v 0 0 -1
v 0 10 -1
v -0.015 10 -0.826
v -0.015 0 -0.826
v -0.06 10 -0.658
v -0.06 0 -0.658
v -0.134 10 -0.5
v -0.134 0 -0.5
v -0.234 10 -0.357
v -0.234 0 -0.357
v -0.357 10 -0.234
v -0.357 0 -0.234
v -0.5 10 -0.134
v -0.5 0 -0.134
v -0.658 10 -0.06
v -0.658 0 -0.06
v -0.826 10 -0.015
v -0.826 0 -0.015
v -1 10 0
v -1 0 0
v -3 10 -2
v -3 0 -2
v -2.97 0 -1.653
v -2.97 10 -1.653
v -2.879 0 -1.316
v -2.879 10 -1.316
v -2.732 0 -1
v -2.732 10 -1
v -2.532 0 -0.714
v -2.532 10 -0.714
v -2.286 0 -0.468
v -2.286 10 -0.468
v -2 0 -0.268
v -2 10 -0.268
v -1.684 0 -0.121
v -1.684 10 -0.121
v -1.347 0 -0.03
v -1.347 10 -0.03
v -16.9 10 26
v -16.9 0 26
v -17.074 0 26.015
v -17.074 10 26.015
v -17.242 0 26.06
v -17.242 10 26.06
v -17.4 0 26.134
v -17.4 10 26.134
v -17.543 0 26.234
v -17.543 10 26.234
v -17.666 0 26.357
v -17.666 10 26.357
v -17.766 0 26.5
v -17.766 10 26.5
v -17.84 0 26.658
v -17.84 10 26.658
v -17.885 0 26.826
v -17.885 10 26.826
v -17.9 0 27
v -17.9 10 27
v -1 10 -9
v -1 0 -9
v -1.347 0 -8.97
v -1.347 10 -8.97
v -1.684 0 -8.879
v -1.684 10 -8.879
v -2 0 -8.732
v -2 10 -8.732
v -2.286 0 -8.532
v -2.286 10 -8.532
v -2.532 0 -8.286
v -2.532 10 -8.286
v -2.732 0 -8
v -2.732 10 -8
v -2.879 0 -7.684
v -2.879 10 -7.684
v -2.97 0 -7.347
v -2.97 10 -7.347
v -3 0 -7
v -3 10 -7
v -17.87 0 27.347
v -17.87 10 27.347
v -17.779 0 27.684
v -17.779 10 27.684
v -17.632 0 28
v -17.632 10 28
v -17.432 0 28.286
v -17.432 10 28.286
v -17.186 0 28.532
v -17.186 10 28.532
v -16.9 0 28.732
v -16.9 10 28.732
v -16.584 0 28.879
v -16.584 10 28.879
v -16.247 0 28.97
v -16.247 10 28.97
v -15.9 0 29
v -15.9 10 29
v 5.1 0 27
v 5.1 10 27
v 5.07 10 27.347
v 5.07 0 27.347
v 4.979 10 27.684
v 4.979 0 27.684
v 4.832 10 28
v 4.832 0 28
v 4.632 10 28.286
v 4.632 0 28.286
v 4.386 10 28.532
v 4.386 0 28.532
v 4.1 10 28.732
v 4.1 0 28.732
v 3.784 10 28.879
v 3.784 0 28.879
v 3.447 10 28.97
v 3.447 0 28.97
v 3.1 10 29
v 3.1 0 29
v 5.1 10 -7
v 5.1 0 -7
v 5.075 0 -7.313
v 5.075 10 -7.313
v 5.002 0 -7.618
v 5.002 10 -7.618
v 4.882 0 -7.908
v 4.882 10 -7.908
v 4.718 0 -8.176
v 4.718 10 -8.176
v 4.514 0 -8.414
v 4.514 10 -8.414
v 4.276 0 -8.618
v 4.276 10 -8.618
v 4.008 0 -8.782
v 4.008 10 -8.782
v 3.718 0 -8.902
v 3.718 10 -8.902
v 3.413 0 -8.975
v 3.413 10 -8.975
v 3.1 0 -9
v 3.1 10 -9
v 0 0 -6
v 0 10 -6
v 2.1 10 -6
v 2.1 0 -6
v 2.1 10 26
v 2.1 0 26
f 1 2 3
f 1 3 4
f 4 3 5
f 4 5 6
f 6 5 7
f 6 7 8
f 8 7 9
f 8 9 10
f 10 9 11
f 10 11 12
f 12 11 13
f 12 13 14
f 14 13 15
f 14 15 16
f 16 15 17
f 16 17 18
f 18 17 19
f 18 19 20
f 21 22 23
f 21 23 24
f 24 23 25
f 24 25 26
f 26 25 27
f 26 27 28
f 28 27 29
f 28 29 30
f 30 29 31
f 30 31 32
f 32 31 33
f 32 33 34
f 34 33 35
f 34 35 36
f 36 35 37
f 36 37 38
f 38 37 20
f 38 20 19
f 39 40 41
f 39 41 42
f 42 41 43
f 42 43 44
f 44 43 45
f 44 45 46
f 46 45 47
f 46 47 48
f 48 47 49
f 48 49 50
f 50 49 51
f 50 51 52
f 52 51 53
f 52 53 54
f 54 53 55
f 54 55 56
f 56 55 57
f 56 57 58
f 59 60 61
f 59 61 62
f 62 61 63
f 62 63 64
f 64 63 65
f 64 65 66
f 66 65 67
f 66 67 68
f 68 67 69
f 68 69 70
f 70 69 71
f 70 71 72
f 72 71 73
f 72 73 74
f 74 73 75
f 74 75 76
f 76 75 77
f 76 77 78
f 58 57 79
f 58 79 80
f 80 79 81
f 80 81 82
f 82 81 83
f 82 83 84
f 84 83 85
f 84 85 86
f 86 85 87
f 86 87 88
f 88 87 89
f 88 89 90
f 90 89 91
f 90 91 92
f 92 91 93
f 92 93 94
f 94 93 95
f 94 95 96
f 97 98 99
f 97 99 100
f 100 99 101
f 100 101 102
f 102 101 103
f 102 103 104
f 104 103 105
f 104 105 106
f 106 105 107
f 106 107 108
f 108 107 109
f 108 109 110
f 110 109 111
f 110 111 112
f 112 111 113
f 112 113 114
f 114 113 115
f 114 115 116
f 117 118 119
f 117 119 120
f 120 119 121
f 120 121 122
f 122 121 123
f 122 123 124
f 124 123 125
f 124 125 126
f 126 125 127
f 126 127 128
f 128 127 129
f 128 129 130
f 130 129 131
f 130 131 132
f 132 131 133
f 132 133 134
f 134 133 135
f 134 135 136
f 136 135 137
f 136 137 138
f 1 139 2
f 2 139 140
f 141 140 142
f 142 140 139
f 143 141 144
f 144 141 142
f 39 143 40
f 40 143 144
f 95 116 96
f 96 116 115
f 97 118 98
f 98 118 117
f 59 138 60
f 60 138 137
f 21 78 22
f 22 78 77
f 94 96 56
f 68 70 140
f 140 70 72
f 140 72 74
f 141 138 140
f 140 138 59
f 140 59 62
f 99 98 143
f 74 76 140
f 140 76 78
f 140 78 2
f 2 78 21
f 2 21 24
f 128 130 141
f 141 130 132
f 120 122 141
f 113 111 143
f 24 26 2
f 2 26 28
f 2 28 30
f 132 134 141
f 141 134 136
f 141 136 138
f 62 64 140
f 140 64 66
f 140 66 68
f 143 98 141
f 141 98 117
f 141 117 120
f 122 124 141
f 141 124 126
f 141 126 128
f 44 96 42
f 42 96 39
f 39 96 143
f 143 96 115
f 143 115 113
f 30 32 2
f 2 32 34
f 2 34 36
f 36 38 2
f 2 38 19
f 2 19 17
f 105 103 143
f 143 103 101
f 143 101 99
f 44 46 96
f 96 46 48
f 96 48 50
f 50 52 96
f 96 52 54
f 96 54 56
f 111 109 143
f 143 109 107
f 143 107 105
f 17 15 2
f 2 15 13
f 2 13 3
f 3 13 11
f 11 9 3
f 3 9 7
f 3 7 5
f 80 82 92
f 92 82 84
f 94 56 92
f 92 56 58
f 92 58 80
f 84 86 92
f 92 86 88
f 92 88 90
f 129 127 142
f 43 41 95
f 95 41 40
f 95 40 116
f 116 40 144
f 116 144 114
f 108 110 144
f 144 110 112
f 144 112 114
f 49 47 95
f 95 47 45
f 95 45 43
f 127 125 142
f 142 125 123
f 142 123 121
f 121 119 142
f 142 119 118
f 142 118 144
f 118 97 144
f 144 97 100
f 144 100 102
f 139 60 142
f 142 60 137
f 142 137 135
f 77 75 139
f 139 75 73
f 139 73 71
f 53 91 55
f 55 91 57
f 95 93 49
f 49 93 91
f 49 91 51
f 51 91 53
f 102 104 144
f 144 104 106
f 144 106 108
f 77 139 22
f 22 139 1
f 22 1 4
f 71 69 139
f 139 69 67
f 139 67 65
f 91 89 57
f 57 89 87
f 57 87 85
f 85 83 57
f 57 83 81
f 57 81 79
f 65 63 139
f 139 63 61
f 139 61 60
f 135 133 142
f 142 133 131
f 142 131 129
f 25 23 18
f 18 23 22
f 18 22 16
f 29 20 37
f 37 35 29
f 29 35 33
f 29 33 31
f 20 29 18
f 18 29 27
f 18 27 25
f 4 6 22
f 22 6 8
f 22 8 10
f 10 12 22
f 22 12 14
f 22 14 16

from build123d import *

# Parameters (mm, degrees)
BOSS_EXTRUDE1_DEPTH = 10
FILLET1_R           = 2
FILLET2_R           = 2
FILLET3_R           = 2
FILLET4_R           = 2
FILLET5_R           = 1
FILLET6_R           = 2
FILLET7_R           = 1


with BuildPart() as part:
    # Sketch1 → Boss-Extrude1 (new body)
    with BuildSketch(Plane(origin=(0, 0, 0), x_dir=(1, 0, 0), z_dir=(0, 1, 0))):
        Polygon((0, 0), (0, 6), (2.1, 6), (2.1, -26), (-17.9, -26), (-17.9, -29), (5.1, -29), (5.1, 9), (-3, 9), (-3, 0), align=None)
    extrude(amount=BOSS_EXTRUDE1_DEPTH)

    # Fillet1
    fillet1_edges = [part.edges().sort_by_distance(p)[0] for p in [
        (5.1, 5, -9),
    ]]
    fillet(fillet1_edges, radius=FILLET1_R)

    # Fillet2
    fillet2_edges = [part.edges().sort_by_distance(p)[0] for p in [
        (5.1, 5, 29),
    ]]
    fillet(fillet2_edges, radius=FILLET2_R)

    # Fillet3
    fillet3_edges = [part.edges().sort_by_distance(p)[0] for p in [
        (-17.9, 5, 29),
    ]]
    fillet(fillet3_edges, radius=FILLET3_R)

    # Fillet4
    fillet4_edges = [part.edges().sort_by_distance(p)[0] for p in [
        (-3, 5, -9),
    ]]
    fillet(fillet4_edges, radius=FILLET4_R)

    # Fillet5
    fillet5_edges = [part.edges().sort_by_distance(p)[0] for p in [
        (-17.9, 5, 26),
    ]]
    fillet(fillet5_edges, radius=FILLET5_R - 0.0001)  # a hair under: the kernel refuses the full size

    # Fillet6
    fillet6_edges = [part.edges().sort_by_distance(p)[0] for p in [
        (-3, 5, 0),
    ]]
    fillet(fillet6_edges, radius=FILLET6_R)

    # Fillet7
    fillet7_edges = [part.edges().sort_by_distance(p)[0] for p in [
        (0, 5, 0),
    ]]
    fillet(fillet7_edges, radius=FILLET7_R - 0.0001)  # a hair under: the kernel refuses the full size


solid = part.part
